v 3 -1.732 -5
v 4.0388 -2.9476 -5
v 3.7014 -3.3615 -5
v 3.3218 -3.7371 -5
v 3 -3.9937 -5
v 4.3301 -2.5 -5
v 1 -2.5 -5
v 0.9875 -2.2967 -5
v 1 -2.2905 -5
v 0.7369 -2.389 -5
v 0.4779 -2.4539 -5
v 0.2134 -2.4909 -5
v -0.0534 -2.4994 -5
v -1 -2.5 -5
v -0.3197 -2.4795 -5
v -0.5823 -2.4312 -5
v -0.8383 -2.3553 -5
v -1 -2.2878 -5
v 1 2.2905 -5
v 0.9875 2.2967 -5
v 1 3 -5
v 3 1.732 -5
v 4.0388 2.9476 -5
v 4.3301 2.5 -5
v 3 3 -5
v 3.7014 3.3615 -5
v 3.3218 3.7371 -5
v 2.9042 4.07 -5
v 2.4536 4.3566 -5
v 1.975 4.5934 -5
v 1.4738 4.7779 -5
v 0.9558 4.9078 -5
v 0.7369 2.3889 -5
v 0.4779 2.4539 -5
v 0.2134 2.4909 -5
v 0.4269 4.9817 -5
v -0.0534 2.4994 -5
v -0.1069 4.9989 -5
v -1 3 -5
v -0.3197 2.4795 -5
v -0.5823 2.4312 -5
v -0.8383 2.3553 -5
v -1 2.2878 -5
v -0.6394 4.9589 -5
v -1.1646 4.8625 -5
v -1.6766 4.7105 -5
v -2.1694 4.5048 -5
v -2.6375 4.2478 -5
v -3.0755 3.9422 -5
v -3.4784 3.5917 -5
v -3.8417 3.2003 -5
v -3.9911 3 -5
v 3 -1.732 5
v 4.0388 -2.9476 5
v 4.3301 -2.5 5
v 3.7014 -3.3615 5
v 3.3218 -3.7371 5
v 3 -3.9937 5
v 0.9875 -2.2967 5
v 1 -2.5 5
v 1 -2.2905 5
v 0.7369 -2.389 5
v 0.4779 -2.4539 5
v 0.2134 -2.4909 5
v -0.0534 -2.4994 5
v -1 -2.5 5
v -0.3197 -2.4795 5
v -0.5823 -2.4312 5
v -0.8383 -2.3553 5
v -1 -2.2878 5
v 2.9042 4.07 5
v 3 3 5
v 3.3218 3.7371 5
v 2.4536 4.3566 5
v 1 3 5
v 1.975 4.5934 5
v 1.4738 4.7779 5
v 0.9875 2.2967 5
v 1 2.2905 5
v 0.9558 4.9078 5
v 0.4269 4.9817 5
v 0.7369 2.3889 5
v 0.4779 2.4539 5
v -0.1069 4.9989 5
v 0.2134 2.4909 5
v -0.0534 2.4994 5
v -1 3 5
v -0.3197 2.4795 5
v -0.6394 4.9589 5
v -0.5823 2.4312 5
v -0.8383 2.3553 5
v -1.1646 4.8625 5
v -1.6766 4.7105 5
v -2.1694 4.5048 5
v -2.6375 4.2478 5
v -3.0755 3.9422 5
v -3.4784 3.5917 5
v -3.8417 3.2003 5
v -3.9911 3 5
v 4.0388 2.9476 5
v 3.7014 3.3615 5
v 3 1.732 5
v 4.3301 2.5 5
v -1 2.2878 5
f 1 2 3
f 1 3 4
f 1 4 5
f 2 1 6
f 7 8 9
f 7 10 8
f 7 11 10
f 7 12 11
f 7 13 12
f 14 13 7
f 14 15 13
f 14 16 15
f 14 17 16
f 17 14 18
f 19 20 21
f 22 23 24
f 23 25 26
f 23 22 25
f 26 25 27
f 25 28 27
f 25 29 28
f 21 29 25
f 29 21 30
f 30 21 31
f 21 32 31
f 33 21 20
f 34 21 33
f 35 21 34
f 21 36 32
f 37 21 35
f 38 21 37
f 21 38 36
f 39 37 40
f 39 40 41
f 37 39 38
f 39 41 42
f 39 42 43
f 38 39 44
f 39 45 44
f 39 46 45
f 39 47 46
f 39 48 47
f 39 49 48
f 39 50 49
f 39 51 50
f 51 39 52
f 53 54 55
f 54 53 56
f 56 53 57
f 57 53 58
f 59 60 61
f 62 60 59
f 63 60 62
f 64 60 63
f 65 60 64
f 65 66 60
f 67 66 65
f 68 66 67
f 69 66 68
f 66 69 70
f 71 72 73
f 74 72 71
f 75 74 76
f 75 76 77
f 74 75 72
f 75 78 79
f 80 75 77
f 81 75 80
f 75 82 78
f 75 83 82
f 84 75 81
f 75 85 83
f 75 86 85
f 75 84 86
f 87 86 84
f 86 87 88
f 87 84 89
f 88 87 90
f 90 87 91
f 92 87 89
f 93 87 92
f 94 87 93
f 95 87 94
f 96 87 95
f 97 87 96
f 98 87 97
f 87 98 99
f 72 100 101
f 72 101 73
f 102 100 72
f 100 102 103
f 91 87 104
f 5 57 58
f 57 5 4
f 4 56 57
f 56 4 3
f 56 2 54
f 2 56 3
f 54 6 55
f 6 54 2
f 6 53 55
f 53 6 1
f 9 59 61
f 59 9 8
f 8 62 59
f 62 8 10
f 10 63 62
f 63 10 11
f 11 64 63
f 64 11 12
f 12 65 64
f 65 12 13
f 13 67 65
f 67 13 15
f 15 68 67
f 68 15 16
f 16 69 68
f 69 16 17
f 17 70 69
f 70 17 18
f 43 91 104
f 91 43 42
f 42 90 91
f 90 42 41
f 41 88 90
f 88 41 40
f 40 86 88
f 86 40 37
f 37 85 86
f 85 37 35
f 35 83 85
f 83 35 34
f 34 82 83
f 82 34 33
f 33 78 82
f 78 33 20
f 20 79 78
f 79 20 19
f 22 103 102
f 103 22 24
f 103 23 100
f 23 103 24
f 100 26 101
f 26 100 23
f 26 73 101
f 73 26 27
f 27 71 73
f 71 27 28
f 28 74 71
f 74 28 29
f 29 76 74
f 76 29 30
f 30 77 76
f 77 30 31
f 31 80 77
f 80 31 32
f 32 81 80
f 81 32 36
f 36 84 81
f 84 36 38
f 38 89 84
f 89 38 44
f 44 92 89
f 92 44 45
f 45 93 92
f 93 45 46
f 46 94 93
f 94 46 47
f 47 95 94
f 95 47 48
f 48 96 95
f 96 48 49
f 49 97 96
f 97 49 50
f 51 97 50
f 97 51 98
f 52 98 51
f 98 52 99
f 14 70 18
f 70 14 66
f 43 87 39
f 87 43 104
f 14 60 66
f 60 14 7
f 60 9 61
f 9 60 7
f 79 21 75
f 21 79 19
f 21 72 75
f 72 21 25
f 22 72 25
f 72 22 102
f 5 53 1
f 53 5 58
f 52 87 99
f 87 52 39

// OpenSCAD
// Generated by SolidPython 1.1.3 on 2025-02-20 04:04:00
$fn=50;


intersection() {
	translate(v = [-5.0000000000, -5.0000000000, -5.0000000000]) {
		linear_extrude(height = 10) {
			polygon(points = [[9.3301270189, 7.5000000000], [9.0387948484, 7.9475644476], [8.7013899854, 8.3615044513], [8.3217613875, 8.7370979763], [7.9042396813, 9.0700604263], [7.4535877600, 9.3565935206], [6.9749464512, 9.5934286231], [6.4737758721, 9.7778640289], [5.9557931435, 9.9077957850], [5.4269071715, 9.9817416901], [4.8931512411, 9.9988582039], [4.3606141916, 9.9589500691], [3.8353709579, 9.8624725392], [3.3234132705, 9.7105261849], [2.8305813044, 9.5048443395], [2.3624970575, 9.2477733259], [1.9245002169, 8.9422456905], [1.5215872470, 8.5917467505], [1.1583543913, 8.2002748347], [0.8389452414, 7.7722956725], [0.5670034681, 7.3126914512], [0.3456312568, 6.8267051218], [0.1773539185, 6.3198805903], [0.0640910829, 5.7979994752], [0.0071347997, 5.2670151533], [0.0071347997, 4.7329848467], [0.0640910829, 4.2020005248], [0.1773539185, 3.6801194097], [0.3456312568, 3.1732948782], [0.5670034681, 2.6873085488], [0.8389452414, 2.2277043275], [1.1583543913, 1.7997251653], [1.5215872470, 1.4082532495], [1.9245002169, 1.0577543095], [2.3624970575, 0.7522266741], [2.8305813044, 0.4951556605], [3.3234132705, 0.2894738151], [3.8353709579, 0.1375274608], [4.3606141916, 0.0410499309], [4.8931512411, 0.0011417961], [5.4269071715, 0.0182583099], [5.9557931435, 0.0922042150], [6.4737758721, 0.2221359711], [6.9749464512, 0.4065713769], [7.4535877600, 0.6434064794], [7.9042396813, 0.9299395737], [8.3217613875, 1.2629020237], [8.7013899854, 1.6384955487], [9.0387948484, 2.0524355524], [9.3301270189, 2.5000000000], [7.1650635095, 3.7500000000], [7.0193974242, 3.5262177762], [6.8506949927, 3.3192477743], [6.6608806938, 3.1314510119], [6.4521198406, 2.9649697869], [6.2267938800, 2.8217032397], [5.9874732256, 2.7032856885], [5.7368879360, 2.6110679855], [5.4778965718, 2.5461021075], [5.2134535857, 2.5091291549], [4.9465756205, 2.5005708980], [4.6803070958, 2.5205249654], [4.4176854790, 2.5687637304], [4.1617066352, 2.6447369076], [3.9152906522, 2.7475778302], [3.6812485287, 2.8761133371], [3.4622501085, 3.0288771547], [3.2607936235, 3.2041266248], [3.0791771957, 3.3998625827], [2.9194726207, 3.6138521637], [2.7835017341, 3.8436542744], [2.6728156284, 4.0866474391], [2.5886769593, 4.3400597048], [2.5320455415, 4.6010002624], [2.5035673999, 4.8664924234], [2.5035673999, 5.1335075766], [2.5320455415, 5.3989997376], [2.5886769593, 5.6599402952], [2.6728156284, 5.9133525609], [2.7835017341, 6.1563457256], [2.9194726207, 6.3861478363], [3.0791771957, 6.6001374173], [3.2607936235, 6.7958733752], [3.4622501085, 6.9711228453], [3.6812485287, 7.1238866629], [3.9152906522, 7.2524221698], [4.1617066352, 7.3552630924], [4.4176854790, 7.4312362696], [4.6803070958, 7.4794750346], [4.9465756205, 7.4994291020], [5.2134535857, 7.4908708451], [5.4778965718, 7.4538978925], [5.7368879360, 7.3889320145], [5.9874732256, 7.2967143115], [6.2267938800, 7.1782967603], [6.4521198406, 7.0350302131], [6.6608806938, 6.8685489881], [6.8506949927, 6.6807522257], [7.0193974242, 6.4737822238], [7.1650635095, 6.2500000000]]);
		}
	}
	rotate(a = -90, v = [0, 0, 1]) {
		translate(v = [-5.0000000000, -5.0000000000, -5.0000000000]) {
			linear_extrude(height = 10) {
				polygon(points = [[0, 0], [2.0000000000, 0], [2.0000000000, 4.0000000000], [7.5000000000, 4.0000000000], [7.5000000000, 6.0000000000], [2.0000000000, 6.0000000000], [2.0000000000, 8.0000000000], [10, 8.0000000000], [10, 10], [0, 10]]);
			}
		}
	}
}
/***********************************************
*********      SolidPython code:      **********
************************************************
 
from solid import *
from solid.utils import *

import math
import matplotlib.pyplot as plt
import subprocess
import os

class Hole:
    def __init__(self, x, y, radius):
        """
        Hole defined by:
        :param x: x dimension for center point of the circle as a ratio of letter height
        :param y: y dimension for center point of the circle as a ratio of letter height
        :param radius: radius of circle as a ratio of letter height
        """
        self.x = x
        self.y = y
        self.radius = radius

class Letter3D:
    def __init__(self, name, outer_shape_points, height, holes=None):
        """
        3D Letter defined by:
        :param name: name of letter
        :param outer_shape_points: points defining the outer shape of the letter
        :param heigh: size of cube that letter fits inside
        :param holes: list of Holes
        """
        self.name = name
        self.outer_shape_points = outer_shape_points
        self.holes = holes if holes is None else []
        self.height = height


    def generate(self):
        shape = polygon(points=self.outer_shape_points)

        if self.holes:
            for hole in self.holes:
                circle_hole = circle(r=hole.radius*self.height)
                positioned_hole = translate([hole.x*self.height, hole.y*self.height])(circle_hole)
                shape = difference()(shape, positioned_hole)
        
        shape_3d = linear_extrude(height=self.height)(shape)
        shape_3d = translate([-self.height/2, -self.height/2, -self.height/2])(shape_3d)
        return shape_3d
    
    def render(self):
        scad_render_to_file(self.shape, f"output/{self.name}.scad", file_header='$fn=50;')
        subprocess.run(["C:\\Program Files\\OpenSCAD\\openscad.exe", "-o", f"output\\{self.name}.stl", f"output\\{self.name}.scad"])


class TwoLetter3D:
    def __init__(self, height, letterA, letterA_face, letterB=None, letterB_face=None):
        self.height = height
        self.letterA = letterA
        self.letterB = letterB
        self.letterA_face = letterA_face
        self.letterB_face = letterB_face

    def call_letter_generation(self, letter):
        letter = letter.upper()
        function_name = f"letter_{letter}"
        func = globals().get(function_name)
        if func is None:
            raise ValueError(f"No letter generation function defined for letter '{letter}'.")
        else:
            print(func)
        return func(self.height)
    
    def rotate_object(self, face, shape):
        face = face.lower()
        if face == "z":
            return shape
        if face == "x":
            return rotate(a=90, v=[0,1,0])(shape)
        if face == "y":
            return rotate(a=-90, v=[0,0,1])(shape)
        else:
            raise ValueError("Face must be one of 'x', 'y', or 'z'.")

    def render(self):
        if self.letterA:
            letterA3D = self.call_letter_generation(self.letterA)
            letterA3D = self.rotate_object(self.letterA_face, letterA3D)

        if self.letterB:
            letterB3D = self.call_letter_generation(self.letterB)
            letterB3D = self.rotate_object(self.letterB_face, letterB3D)
            combined = intersection()(letterA3D, letterB3D)
            file_name = self.letterA + self.letterB
            scad_render_to_file(combined, f"output/{file_name}.scad", file_header='$fn=50;')
            subprocess.run(["C:\\Program Files\\OpenSCAD\\openscad.exe", "-o", f"output\\{file_name}.stl", f"output\\{file_name}.scad"])
            return
        else:
            file_name = self.letterA
            scad_render_to_file(letterA3D, f"output/{file_name}.scad", file_header='$fn=50;')
            subprocess.run(["C:\\Program Files\\OpenSCAD\\openscad.exe", "-o", f"output\\{file_name}.stl", f"output\\{file_name}.scad"])
    
                

def arc_points(radius, start_angle, end_angle, center=[0,0], num_points=50):
    angles = [start_angle + i * (end_angle - start_angle) / (num_points - 1)
              for i in range(num_points)]
    points = [
        (center[0] + radius * math.cos(math.radians(angle)),
         center[1] + radius * math.sin(math.radians(angle)))
        for angle in angles
    ]
    return points

def letter_A(h):
    shape_points = [(0,0), (h/2, h), (h, 0), (5/6*h, 0), (2/3*h, 1/3*h), (1/3*h, 1/3*h), (h/6, 0)]
    holes = [Hole(1/2, 7/12, 1/6)]
    A = Letter3D("A", shape_points, h, holes)
    return A.generate()

def letter_B(h):
    top_arc_points = arc_points(h/4, 90, -90, center=[3/4*h, 3/4*h])
    bottom_arc_points = arc_points(h/4, 90, -90, center=[3/4*h, h/4])
    other_points = [(0,0),(0,h)]

    shape_points = top_arc_points + bottom_arc_points + other_points
    holes = [Hole(1/2, 3/4, 1/6), Hole(1/2, 1/4, 1/6)]
    B = Letter3D("B", shape_points, h, holes)
    return B.generate()

def letter_C(h):
    outer_arc_points = arc_points(h/2, 30, 330, center=[h/2,h/2])
    inner_arc_points = arc_points(h/4, 30, 330, center=[h/2,h/2])[::-1]
    shape_points = outer_arc_points + inner_arc_points
    # print(shape_points)
    C = Letter3D("C", shape_points, h)
    return C.generate()


def letter_D(h):
    outer_arc_points = arc_points(h/2, 90, -90, center= [h/2, h/2])
    shape_points = outer_arc_points + [(0,0), (0, h)]
    holes = [Hole(1/2, 1/2, 1/6)]
    D = Letter3D("D", shape_points, h, holes)
    return D.generate()

def letter_E(h):
    points = [(0,0), (h,0), (h,h/5), (h/5,h/5), (h/5,2/5*h), (3/4*h,2/5*h), (3/4*h,3/5*h), (h/5,3/5*h), (h/5,4/5*h), (h,4/5*h), (h,h), (0,h)]
    E = Letter3D("E", points, h)
    return E.generate()

def letter_F(h):
    points = [(0,0), (h/5,0), (h/5,2/5*h), (3/4*h,2/5*h), (3/4*h,3/5*h), (h/5,3/5*h), (h/5,4/5*h), (h,4/5*h), (h,h), (0,h)]
    F = Letter3D("F", points, h)
    return F.generate()

if __name__ == "__main__":
    os.makedirs("output", exist_ok=True)

    letters = [chr(x) for x in range(ord('A'), ord('F') + 1)]
    for letter in letters:
        for other_letter in letters:
            shape = TwoLetter3D(10, letter, "z", other_letter, "y")
            shape.render()
 
 
************************************************/
